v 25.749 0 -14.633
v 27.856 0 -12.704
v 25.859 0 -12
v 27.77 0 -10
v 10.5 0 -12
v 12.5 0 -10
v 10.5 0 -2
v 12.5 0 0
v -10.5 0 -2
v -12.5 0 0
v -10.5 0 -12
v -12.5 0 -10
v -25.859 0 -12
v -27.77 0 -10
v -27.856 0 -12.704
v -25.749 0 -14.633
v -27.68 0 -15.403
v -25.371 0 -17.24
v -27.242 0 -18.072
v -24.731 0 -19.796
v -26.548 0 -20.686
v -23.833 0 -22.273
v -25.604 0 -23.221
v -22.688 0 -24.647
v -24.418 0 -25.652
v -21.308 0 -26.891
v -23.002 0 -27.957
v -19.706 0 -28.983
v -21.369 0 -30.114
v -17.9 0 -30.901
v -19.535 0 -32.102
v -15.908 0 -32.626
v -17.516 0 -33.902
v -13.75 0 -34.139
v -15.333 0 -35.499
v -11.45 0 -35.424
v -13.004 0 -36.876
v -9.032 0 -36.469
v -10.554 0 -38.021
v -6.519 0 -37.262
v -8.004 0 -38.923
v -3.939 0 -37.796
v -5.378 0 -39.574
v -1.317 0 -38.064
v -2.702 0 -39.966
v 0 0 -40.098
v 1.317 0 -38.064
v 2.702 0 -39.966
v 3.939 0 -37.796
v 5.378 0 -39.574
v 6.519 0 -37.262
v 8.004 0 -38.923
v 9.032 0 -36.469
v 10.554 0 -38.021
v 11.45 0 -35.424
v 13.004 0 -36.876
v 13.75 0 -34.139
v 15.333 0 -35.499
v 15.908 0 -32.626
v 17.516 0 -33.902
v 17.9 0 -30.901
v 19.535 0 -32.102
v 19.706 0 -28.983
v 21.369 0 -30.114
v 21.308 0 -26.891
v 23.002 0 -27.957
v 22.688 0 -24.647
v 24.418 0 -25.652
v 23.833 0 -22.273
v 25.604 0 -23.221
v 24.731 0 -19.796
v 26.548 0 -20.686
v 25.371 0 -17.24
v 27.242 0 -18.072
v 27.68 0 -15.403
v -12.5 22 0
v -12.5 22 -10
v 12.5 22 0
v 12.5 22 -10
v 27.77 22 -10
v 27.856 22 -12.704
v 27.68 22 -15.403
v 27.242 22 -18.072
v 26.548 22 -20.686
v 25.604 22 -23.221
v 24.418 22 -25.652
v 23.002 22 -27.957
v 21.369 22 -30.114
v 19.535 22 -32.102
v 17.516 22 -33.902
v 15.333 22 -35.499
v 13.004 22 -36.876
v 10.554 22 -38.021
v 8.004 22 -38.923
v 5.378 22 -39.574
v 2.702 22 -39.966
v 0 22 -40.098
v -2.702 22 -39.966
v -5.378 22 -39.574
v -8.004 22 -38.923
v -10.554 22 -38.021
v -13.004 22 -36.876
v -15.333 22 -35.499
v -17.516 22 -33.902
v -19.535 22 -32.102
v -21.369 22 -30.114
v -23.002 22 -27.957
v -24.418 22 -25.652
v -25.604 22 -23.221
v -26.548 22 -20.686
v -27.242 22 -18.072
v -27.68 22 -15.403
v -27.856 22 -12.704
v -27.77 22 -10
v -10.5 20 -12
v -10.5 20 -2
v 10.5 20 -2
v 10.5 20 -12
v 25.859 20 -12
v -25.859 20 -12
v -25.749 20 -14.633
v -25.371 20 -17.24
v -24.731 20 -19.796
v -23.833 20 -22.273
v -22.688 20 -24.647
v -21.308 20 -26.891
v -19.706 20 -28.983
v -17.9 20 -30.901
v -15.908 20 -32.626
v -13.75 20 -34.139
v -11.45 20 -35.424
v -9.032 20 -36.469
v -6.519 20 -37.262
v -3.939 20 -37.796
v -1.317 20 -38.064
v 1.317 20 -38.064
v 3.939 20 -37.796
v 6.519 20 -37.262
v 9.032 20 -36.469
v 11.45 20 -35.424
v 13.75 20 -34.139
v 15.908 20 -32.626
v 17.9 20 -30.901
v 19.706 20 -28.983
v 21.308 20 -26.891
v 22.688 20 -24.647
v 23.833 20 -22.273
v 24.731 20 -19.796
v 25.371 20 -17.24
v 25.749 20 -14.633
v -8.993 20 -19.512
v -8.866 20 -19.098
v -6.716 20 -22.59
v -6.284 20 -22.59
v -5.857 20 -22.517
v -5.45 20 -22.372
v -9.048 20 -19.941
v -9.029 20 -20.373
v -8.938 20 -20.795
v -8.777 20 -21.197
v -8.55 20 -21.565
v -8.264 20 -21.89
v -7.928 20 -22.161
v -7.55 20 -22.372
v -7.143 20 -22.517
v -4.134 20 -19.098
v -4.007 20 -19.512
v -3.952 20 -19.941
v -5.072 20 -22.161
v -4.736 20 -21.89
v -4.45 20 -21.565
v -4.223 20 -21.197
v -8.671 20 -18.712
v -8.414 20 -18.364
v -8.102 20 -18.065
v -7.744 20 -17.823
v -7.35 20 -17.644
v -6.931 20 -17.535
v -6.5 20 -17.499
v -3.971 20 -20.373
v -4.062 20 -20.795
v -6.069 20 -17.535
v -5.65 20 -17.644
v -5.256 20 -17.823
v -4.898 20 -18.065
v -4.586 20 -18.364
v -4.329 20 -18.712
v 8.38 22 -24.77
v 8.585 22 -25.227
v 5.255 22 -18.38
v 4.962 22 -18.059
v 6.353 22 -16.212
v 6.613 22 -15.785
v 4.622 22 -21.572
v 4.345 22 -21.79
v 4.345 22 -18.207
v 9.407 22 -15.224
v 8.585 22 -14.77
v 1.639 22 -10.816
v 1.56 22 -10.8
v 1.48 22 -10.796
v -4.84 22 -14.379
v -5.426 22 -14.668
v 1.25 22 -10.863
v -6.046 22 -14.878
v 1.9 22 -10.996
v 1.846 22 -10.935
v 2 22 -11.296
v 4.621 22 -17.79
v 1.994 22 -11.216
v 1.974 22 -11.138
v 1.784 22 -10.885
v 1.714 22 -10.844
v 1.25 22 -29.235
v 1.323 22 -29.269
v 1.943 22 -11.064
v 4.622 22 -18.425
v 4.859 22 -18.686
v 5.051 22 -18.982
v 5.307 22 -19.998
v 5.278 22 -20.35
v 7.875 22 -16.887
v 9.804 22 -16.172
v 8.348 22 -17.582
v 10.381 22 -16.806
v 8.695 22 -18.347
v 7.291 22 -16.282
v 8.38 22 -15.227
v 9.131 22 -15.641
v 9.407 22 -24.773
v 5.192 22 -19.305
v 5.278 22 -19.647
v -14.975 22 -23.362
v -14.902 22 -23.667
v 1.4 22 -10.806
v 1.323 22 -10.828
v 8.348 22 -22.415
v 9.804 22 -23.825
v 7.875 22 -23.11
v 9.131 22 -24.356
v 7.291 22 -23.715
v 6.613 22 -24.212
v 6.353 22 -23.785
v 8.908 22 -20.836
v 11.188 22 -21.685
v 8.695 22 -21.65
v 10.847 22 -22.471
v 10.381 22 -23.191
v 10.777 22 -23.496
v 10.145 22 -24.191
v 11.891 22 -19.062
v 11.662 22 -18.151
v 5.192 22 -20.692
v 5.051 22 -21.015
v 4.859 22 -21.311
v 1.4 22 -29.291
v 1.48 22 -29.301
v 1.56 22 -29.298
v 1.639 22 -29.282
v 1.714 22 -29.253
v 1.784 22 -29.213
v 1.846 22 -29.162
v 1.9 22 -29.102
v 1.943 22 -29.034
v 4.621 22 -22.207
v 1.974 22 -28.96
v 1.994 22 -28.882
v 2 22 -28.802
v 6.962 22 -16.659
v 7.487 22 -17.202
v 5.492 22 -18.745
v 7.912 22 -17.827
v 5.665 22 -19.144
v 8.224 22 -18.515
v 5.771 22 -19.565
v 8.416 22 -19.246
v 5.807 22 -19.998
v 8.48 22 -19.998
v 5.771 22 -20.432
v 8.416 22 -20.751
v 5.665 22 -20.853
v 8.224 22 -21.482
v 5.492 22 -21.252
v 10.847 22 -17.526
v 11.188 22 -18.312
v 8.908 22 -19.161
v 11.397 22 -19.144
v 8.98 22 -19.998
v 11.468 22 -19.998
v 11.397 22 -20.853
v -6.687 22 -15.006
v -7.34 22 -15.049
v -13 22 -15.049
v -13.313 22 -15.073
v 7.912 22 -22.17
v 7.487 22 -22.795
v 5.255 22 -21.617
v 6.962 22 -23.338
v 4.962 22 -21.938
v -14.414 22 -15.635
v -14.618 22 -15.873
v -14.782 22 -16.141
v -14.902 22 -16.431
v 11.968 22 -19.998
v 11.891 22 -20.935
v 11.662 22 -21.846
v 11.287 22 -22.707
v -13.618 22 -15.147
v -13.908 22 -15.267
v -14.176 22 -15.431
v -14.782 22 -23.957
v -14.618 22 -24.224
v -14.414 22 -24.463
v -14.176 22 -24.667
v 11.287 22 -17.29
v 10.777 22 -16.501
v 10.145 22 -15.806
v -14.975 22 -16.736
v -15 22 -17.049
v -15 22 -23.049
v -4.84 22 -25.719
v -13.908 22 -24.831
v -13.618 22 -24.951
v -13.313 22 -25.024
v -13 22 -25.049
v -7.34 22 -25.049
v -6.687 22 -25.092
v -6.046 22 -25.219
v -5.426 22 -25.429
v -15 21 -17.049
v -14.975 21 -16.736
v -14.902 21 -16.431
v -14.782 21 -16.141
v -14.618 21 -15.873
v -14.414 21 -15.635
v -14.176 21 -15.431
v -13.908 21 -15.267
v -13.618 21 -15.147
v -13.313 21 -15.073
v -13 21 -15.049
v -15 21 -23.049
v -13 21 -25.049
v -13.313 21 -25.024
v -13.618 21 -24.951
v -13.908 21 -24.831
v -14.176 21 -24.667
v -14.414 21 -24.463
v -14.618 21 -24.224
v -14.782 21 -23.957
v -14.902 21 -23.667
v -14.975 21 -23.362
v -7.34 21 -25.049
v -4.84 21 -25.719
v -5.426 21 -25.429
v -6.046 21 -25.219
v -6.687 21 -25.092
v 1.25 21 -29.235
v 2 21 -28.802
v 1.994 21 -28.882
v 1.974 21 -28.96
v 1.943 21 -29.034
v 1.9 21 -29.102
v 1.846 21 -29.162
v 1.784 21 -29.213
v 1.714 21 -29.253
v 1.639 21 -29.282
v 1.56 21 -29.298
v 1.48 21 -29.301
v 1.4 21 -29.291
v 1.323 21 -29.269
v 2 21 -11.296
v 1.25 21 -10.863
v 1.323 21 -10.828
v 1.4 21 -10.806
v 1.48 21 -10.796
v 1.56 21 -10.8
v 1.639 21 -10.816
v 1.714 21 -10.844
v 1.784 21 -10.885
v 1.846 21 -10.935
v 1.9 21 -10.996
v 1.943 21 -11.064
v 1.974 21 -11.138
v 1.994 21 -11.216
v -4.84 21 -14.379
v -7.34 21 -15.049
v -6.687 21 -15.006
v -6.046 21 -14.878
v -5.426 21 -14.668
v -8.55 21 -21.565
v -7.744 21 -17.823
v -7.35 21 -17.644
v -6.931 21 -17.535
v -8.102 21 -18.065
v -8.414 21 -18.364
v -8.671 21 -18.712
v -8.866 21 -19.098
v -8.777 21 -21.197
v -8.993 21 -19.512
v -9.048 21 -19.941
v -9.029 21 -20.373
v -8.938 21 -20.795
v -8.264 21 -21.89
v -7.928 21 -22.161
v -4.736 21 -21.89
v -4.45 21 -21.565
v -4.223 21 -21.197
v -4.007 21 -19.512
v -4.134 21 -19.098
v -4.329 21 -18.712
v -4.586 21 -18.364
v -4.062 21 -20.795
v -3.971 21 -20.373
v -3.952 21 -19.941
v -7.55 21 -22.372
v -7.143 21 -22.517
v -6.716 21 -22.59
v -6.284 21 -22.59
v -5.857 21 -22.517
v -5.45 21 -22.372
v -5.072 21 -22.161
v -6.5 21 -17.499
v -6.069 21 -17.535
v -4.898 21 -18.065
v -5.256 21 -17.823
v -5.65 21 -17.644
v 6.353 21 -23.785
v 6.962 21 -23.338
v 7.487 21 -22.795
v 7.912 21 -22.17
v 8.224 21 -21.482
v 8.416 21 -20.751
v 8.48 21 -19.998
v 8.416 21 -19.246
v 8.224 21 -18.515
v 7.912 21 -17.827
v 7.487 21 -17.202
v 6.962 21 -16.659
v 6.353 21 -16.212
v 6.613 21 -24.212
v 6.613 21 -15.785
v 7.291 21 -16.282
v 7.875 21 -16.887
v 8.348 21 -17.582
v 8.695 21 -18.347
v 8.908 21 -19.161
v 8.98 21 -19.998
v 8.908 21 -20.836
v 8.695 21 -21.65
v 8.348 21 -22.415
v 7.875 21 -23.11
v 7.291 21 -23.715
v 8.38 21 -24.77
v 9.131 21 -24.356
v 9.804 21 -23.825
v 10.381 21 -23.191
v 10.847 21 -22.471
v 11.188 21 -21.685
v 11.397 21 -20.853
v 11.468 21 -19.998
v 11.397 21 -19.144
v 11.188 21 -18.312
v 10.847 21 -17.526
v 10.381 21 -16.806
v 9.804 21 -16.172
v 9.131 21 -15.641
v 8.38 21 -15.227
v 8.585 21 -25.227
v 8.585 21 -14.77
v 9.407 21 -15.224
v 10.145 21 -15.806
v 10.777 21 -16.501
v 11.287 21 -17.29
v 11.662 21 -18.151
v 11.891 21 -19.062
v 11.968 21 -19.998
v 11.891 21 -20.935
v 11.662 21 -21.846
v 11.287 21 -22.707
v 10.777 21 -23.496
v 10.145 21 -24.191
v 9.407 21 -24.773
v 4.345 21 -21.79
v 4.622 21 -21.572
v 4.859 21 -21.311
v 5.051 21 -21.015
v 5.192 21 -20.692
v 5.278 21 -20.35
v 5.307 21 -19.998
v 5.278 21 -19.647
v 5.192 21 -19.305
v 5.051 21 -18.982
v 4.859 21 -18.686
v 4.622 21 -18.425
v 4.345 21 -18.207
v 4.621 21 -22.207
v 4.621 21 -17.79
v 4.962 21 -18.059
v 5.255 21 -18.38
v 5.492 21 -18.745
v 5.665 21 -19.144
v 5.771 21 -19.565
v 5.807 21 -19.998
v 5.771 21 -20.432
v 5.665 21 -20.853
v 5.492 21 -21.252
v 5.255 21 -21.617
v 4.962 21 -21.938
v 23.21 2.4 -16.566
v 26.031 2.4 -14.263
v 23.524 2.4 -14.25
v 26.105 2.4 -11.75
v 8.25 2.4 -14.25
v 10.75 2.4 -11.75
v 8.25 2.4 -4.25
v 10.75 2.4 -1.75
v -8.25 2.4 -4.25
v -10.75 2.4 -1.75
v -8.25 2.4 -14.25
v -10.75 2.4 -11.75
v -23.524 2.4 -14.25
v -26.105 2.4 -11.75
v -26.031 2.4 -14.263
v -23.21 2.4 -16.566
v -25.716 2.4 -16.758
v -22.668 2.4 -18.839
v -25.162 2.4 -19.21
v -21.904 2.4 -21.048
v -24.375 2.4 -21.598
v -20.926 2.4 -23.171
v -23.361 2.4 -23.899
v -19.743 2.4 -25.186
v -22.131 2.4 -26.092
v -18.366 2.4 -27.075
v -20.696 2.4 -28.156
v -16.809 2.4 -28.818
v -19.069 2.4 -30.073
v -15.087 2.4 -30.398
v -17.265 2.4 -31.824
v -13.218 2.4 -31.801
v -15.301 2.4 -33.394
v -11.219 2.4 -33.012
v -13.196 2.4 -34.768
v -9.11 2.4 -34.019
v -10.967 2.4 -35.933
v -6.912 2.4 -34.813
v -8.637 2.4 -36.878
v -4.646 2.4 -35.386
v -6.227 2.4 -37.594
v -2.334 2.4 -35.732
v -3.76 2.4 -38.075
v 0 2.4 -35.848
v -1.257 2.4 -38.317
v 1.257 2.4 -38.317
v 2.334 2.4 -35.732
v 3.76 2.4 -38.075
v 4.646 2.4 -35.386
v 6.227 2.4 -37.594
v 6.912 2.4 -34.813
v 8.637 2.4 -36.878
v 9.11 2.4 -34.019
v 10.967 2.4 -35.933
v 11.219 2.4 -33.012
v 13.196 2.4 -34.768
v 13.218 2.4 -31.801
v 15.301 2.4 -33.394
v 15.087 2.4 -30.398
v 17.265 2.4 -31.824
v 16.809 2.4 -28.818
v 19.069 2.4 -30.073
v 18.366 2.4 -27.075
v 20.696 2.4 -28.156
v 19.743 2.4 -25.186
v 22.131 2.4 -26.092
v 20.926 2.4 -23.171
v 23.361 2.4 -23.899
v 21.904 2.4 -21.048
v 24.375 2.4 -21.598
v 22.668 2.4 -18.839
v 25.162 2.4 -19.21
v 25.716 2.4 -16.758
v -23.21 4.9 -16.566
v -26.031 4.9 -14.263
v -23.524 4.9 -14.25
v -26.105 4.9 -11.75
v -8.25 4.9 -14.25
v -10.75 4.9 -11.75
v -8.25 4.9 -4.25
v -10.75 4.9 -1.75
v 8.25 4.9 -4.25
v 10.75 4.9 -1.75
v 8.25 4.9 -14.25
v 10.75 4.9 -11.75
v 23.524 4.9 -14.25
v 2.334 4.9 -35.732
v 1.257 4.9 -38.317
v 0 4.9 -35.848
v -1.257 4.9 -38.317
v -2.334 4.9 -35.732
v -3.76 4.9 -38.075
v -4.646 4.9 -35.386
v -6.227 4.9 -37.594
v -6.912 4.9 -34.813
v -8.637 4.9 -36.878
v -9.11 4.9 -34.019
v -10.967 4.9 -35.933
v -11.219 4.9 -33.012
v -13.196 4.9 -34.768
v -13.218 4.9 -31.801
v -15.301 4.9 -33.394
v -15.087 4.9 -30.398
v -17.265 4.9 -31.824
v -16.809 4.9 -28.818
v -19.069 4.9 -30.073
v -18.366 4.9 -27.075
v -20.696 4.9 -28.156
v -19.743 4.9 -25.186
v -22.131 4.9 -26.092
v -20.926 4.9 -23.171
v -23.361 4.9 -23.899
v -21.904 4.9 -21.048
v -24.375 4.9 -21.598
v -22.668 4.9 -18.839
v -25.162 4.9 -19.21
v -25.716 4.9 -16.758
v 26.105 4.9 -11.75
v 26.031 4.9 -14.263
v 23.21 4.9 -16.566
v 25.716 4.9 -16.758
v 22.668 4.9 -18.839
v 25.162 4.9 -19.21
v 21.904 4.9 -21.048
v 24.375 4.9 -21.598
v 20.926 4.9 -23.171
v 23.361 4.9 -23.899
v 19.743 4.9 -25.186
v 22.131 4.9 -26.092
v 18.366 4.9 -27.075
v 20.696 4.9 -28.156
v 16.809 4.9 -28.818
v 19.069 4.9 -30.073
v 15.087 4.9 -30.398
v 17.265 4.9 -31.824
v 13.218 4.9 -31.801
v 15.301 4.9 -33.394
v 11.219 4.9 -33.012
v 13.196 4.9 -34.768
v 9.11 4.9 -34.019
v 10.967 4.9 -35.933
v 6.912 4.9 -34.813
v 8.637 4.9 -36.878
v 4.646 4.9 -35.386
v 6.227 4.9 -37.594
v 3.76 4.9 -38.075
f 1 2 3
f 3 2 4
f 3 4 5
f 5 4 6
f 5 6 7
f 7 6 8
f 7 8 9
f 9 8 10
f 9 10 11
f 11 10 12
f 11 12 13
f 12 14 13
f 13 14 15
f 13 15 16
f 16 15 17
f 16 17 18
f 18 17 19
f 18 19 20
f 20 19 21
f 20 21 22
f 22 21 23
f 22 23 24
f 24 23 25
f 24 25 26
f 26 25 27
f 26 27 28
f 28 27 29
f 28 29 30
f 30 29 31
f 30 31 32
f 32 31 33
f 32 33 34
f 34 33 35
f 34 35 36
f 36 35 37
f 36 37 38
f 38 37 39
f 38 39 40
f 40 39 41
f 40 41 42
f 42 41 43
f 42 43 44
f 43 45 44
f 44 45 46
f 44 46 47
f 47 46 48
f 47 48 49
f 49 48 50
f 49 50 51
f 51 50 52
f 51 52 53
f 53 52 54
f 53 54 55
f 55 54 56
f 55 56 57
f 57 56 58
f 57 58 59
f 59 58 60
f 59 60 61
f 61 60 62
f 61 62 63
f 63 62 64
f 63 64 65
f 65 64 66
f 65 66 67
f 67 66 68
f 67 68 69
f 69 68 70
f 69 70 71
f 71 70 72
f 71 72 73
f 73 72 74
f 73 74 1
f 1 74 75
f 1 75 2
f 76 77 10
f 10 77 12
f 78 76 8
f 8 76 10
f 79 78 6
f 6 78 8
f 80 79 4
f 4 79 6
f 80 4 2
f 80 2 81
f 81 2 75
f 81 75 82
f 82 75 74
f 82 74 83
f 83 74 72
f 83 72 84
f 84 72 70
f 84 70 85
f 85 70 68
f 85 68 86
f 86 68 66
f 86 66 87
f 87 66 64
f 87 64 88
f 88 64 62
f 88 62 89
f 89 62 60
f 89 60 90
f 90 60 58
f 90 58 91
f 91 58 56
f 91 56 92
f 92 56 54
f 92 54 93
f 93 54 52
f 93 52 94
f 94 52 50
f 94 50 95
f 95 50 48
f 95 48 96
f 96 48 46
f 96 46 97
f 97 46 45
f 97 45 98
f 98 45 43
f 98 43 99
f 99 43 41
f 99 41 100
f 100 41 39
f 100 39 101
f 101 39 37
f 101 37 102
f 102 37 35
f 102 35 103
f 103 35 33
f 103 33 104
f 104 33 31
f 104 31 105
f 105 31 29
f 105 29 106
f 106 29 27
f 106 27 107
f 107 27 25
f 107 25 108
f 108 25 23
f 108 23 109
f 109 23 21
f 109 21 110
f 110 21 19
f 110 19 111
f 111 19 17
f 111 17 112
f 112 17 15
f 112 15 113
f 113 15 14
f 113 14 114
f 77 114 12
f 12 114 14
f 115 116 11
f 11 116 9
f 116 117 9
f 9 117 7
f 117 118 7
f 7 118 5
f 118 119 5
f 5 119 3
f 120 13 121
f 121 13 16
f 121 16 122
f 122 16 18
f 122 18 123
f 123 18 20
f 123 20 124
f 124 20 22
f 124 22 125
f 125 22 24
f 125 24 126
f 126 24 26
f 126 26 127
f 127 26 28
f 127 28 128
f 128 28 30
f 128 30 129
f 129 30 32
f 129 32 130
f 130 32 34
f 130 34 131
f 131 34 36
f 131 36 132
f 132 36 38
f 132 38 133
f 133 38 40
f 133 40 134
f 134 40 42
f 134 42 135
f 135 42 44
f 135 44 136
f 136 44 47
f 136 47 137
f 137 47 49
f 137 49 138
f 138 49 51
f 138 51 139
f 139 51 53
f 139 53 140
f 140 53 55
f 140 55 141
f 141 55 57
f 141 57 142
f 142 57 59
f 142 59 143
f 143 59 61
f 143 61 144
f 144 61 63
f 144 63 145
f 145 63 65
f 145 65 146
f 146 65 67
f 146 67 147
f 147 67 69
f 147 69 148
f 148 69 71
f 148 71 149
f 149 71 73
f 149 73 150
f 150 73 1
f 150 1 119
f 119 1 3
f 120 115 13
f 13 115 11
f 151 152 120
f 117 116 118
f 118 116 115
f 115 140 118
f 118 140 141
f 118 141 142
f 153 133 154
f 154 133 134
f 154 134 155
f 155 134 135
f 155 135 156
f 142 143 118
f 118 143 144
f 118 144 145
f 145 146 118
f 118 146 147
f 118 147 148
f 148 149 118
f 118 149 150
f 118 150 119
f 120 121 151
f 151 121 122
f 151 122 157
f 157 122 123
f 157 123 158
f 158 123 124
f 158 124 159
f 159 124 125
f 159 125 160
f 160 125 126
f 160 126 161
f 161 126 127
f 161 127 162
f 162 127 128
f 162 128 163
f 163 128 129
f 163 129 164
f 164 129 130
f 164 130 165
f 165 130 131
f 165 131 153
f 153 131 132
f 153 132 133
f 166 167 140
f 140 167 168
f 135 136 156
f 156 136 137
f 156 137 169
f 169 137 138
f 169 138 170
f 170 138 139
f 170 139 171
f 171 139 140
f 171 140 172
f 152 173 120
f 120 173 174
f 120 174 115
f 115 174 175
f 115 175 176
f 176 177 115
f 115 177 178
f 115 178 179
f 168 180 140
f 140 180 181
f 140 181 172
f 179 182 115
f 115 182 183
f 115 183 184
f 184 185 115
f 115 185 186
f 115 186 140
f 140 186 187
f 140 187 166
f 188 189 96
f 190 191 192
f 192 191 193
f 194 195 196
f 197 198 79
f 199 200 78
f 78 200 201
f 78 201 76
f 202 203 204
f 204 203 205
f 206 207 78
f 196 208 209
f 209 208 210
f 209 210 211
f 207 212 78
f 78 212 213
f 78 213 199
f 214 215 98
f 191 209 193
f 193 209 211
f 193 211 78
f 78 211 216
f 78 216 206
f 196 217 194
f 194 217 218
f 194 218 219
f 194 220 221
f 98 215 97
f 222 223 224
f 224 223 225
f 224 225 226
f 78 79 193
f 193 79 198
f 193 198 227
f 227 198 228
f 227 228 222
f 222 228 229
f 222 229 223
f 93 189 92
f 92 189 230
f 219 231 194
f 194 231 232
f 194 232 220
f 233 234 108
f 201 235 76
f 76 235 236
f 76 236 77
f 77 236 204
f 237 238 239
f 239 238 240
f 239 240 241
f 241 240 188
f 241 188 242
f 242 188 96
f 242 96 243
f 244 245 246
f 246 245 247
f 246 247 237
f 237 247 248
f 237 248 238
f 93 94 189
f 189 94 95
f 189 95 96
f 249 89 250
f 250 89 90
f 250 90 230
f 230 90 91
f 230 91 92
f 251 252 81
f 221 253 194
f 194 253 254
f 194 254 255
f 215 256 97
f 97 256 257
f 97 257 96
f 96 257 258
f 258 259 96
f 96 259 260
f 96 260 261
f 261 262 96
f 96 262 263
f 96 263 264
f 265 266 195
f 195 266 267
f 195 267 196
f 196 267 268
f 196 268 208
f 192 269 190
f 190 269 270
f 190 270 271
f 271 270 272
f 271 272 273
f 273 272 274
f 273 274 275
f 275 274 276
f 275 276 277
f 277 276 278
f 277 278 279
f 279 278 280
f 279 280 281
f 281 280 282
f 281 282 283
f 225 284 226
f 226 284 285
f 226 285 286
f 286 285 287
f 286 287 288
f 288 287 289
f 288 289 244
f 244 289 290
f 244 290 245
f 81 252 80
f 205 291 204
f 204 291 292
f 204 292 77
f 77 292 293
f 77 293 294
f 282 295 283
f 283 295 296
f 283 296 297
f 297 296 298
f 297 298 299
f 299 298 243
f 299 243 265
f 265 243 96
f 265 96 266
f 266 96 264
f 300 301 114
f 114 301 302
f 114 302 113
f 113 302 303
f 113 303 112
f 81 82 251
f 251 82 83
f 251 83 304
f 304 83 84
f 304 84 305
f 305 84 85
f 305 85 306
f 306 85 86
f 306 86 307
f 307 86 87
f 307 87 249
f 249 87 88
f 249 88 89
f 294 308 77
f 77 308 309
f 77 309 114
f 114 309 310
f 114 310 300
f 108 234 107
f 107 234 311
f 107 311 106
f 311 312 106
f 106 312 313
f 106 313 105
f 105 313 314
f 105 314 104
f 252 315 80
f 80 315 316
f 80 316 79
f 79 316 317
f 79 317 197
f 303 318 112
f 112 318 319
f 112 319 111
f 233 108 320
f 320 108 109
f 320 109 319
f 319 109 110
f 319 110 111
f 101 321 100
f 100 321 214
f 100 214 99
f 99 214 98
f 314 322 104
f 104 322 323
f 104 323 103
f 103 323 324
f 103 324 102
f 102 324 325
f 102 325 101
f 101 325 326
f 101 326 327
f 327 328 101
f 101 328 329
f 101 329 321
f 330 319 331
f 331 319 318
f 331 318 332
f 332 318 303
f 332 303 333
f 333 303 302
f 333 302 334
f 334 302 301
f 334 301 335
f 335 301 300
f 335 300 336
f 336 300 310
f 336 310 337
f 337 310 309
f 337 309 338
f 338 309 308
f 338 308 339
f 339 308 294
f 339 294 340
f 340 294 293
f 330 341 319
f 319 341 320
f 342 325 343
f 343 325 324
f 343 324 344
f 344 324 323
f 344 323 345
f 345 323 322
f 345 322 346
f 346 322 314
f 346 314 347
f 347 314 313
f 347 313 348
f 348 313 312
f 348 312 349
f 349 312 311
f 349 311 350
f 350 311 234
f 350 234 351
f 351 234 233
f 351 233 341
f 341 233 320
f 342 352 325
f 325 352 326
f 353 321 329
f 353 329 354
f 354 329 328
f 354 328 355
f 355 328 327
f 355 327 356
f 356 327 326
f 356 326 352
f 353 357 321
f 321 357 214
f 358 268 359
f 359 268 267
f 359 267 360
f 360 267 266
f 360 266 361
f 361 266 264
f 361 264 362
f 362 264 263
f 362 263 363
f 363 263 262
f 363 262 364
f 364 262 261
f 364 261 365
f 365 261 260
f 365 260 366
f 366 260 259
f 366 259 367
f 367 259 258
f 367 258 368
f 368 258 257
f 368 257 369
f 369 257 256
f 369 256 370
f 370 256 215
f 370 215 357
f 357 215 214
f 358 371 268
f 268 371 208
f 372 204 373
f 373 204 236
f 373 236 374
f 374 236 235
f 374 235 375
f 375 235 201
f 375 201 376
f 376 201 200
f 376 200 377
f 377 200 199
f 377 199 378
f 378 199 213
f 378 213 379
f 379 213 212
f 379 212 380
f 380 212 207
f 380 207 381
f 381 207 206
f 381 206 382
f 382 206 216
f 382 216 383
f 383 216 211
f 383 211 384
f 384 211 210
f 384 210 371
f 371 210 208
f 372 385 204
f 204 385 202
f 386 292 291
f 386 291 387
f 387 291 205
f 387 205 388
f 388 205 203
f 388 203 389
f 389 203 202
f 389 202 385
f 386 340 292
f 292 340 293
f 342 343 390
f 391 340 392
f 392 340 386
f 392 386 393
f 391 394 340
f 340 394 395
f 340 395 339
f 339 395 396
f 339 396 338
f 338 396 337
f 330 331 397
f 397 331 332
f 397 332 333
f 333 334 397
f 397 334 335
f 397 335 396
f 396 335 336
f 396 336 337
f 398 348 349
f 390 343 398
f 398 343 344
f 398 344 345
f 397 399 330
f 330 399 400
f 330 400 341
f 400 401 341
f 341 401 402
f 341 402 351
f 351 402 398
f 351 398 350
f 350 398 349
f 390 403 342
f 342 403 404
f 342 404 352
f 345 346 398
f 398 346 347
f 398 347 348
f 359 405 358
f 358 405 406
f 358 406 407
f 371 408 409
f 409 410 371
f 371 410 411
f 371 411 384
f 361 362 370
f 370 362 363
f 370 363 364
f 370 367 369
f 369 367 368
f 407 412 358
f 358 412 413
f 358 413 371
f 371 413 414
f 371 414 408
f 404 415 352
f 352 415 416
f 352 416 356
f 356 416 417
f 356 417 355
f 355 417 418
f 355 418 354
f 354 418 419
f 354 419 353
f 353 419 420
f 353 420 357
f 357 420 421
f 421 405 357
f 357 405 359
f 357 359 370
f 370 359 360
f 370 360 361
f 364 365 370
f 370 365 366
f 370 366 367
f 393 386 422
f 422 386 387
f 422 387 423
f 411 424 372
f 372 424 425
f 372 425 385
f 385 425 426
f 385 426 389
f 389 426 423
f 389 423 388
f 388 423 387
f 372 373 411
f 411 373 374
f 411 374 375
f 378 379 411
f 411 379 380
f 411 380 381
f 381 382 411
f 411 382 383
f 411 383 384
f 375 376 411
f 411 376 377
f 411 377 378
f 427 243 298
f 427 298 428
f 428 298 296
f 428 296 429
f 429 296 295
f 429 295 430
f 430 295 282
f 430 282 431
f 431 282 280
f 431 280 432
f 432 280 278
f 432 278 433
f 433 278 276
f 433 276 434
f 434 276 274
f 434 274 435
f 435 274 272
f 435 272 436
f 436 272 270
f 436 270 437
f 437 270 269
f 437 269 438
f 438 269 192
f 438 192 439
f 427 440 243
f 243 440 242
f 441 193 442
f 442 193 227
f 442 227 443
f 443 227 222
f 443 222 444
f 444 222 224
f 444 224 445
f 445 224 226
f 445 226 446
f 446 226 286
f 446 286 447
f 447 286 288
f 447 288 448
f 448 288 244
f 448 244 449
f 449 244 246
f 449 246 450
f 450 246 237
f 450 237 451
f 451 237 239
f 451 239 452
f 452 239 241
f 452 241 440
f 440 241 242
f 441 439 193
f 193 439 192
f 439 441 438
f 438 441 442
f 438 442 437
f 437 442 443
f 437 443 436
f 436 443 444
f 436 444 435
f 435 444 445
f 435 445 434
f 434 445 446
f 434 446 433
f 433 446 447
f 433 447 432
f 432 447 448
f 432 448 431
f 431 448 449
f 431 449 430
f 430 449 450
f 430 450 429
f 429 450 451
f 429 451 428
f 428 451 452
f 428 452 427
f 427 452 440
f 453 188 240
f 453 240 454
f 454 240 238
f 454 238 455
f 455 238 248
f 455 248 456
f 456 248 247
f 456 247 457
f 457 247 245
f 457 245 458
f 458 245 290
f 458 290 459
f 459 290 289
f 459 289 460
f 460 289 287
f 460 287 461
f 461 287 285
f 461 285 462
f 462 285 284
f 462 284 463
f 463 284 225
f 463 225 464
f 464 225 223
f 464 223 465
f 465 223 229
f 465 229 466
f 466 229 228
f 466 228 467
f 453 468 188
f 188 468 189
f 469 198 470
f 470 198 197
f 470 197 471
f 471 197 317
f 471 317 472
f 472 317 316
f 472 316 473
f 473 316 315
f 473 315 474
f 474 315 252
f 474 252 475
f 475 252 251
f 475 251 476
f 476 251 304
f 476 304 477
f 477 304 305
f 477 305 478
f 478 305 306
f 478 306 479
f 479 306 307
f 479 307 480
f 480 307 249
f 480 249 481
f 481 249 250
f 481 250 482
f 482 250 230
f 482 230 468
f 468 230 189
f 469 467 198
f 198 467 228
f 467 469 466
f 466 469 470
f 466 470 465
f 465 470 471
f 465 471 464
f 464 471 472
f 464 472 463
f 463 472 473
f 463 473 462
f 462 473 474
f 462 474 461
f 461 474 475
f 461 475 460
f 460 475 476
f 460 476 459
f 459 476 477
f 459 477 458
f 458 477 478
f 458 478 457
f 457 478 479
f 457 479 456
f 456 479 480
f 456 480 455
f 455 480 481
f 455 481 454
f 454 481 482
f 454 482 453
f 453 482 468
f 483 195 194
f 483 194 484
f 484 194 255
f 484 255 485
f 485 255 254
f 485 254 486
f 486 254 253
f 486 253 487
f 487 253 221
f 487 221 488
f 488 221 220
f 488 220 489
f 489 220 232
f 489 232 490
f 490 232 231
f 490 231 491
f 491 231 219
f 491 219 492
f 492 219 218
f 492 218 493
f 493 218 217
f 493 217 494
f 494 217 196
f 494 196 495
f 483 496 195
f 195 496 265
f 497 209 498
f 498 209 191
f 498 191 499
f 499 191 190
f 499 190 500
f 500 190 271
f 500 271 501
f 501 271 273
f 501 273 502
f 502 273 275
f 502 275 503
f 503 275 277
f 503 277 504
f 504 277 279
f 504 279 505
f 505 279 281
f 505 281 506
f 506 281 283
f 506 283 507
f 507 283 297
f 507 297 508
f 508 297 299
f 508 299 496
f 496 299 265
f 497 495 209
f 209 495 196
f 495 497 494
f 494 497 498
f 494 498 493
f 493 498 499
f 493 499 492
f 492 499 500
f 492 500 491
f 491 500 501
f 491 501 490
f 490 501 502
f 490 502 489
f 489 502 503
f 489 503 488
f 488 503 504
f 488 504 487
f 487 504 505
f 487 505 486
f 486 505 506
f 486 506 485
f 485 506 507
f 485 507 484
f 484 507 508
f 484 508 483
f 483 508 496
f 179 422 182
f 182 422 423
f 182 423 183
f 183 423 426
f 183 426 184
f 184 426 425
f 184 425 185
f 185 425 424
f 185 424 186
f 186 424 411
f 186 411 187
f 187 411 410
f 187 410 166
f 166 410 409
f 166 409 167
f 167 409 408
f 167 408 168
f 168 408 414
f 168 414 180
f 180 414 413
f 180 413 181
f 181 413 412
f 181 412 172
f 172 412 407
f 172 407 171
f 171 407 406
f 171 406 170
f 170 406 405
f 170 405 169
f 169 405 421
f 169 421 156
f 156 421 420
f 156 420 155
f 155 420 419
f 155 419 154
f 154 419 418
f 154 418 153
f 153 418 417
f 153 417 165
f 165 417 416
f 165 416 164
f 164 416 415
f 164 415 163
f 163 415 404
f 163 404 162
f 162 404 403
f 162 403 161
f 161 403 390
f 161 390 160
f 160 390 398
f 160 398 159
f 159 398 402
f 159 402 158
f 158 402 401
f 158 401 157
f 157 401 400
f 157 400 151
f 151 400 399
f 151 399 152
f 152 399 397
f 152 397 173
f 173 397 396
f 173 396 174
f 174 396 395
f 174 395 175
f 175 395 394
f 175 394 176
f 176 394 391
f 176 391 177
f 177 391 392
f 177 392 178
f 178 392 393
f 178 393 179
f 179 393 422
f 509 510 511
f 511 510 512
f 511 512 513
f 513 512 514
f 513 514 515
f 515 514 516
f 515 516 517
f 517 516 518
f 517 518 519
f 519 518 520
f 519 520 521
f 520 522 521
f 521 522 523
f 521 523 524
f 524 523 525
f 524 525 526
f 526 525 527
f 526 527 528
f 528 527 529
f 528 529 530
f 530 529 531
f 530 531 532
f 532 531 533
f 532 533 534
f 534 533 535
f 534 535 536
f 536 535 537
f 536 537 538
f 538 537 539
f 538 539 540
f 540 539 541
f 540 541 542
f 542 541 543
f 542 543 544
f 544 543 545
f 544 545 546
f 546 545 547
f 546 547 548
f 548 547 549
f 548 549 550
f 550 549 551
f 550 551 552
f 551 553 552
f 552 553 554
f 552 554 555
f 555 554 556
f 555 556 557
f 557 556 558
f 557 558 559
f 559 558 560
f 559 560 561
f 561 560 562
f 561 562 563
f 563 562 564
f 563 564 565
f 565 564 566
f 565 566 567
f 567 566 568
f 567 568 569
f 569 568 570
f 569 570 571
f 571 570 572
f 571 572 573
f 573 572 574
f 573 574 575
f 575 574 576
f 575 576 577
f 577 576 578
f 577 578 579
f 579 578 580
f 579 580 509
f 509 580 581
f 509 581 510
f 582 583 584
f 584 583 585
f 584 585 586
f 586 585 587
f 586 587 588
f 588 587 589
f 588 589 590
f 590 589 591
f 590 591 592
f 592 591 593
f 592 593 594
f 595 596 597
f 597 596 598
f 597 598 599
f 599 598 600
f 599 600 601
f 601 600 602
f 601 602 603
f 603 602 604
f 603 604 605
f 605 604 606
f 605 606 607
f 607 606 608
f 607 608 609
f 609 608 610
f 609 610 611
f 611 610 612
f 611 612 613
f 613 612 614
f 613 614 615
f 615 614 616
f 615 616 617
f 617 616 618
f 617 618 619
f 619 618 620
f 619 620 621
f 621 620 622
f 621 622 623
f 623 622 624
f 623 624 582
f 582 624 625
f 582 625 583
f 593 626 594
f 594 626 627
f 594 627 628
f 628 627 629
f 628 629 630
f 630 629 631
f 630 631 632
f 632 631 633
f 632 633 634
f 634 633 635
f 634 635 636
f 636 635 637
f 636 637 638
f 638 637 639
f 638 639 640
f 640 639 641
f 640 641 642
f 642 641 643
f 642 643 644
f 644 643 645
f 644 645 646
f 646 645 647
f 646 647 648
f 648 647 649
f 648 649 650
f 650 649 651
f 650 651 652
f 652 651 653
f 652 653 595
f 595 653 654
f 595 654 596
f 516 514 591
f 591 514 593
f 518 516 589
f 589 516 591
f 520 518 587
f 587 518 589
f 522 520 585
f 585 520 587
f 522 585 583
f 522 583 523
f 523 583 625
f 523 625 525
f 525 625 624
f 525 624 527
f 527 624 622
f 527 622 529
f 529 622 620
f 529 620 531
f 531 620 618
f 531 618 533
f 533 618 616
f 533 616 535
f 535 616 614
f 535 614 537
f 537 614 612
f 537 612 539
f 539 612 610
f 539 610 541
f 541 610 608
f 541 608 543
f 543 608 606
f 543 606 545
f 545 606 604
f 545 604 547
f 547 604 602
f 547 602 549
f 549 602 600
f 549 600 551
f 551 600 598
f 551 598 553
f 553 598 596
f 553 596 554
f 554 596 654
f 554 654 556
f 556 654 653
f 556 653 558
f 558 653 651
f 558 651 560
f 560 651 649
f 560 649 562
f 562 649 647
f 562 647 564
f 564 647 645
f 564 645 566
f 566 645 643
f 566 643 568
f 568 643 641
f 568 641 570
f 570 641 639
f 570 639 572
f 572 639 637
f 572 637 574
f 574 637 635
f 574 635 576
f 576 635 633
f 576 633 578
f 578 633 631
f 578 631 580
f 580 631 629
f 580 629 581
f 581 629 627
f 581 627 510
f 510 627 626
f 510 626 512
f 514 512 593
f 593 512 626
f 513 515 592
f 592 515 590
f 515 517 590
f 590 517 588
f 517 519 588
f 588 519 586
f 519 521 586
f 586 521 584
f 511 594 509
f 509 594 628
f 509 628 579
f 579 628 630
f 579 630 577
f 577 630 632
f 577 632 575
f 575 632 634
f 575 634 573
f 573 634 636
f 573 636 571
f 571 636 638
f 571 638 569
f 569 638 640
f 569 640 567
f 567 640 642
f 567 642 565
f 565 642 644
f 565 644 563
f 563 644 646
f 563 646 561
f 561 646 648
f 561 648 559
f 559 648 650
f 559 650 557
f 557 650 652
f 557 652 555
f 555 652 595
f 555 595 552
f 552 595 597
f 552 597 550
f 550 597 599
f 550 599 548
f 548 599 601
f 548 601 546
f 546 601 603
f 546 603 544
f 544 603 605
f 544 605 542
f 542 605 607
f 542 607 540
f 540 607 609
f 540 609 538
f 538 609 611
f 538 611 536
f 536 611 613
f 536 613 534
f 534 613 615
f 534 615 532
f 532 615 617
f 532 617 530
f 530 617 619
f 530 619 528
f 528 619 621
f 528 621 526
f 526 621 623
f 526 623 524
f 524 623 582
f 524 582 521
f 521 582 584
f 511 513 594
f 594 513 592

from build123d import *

# Parameters (mm, degrees)
EXTRUIR_L_MINA1_DEPTH        = 20
SALIENTE_EXTRUIR1_DEPTH      = 2
CORTAR_EXTRUIR1_DEPTH        = 1
CORTAR_EXTRUIR_L_MINA2_DEPTH = 1
CROQUIS7_R                   = 2.55
CORTAR_EXTRUIR2_DEPTH        = 11
EXTRUIR_L_MINA2_DEPTH        = 2.5


with BuildPart() as part:
    # Croquis1 → Extruir-Lámina1 (new body)
    with BuildSketch(Plane(origin=(0, 0, 0), x_dir=(1, 0, 0), z_dir=(0, 1, 0))):
        with BuildLine():
            Line((-27.77, 10), (-12.5, 10))
            Line((-12.5, 10), (-12.5, 0))
            Line((-12.5, 0), (12.5, 0))
            Line((12.5, 0), (12.5, 10))
            Line((12.5, 10), (27.77, 10))
            ThreePointArc((27.77, 10), (0, 40.097565641), (-27.77, 10))
        make_face()
        with BuildLine():
            Line((-25.858908766, 12), (-10.5, 12))
            Line((-10.5, 12), (-10.5, 2))
            Line((-10.5, 2), (10.5, 2))
            Line((10.5, 2), (10.5, 12))
            Line((10.5, 12), (25.858908766, 12))
            ThreePointArc((25.858908766, 12), (0, 38.097565641), (-25.858908766, 12))
        make_face(mode=Mode.SUBTRACT)
    extrude(amount=EXTRUIR_L_MINA1_DEPTH)

    # Croquis2 → Saliente-Extruir1 (add)
    with BuildSketch(Plane(origin=(0, 20, 0), x_dir=(1, 0, 0), z_dir=(0, 1, 0))):
        with BuildLine():
            Line((12.5, 10), (27.77, 10))
            ThreePointArc((27.77, 10), (0, 40.097565641), (-27.77, 10))
            Line((-27.77, 10), (-12.5, 10))
            Line((-12.5, 10), (-12.5, 0))
            Line((-12.5, 0), (12.5, 0))
            Line((12.5, 0), (12.5, 10))
        make_face()
    extrude(amount=SALIENTE_EXTRUIR1_DEPTH)

    # Croquis3 → Cortar-Extruir1 (cut)
    with BuildSketch(Plane(origin=(0, 22, 0), x_dir=(1, 0, 0), z_dir=(0, 1, 0))):
        with BuildLine():
            Line((-15, 23.048782821), (-15, 17.048782821))
            ThreePointArc((-15, 17.048782821), (-14.414213562, 15.634569258), (-13, 15.048782821))
            Line((-13, 15.048782821), (-7.339745962, 15.048782821))
            ThreePointArc((-7.339745962, 15.048782821), (-6.045650737, 14.878411952), (-4.839745962, 14.37890984))
            Line((-4.839745962, 14.37890984), (1.25, 10.862993369))
            ThreePointArc((1.25, 10.862993369), (1.75, 10.862993369), (2, 11.296006071))
            Line((2, 11.296006071), (2, 28.80155957))
            ThreePointArc((2, 28.80155957), (1.75, 29.234572272), (1.25, 29.234572272))
            Line((1.25, 29.234572272), (-4.839745962, 25.718655802))
            ThreePointArc((-4.839745962, 25.718655802), (-6.045650737, 25.219153689), (-7.339745962, 25.048782821))
            Line((-7.339745962, 25.048782821), (-13, 25.048782821))
            ThreePointArc((-13, 25.048782821), (-14.414213562, 24.462996383), (-15, 23.048782821))
        make_face()
    extrude(amount=-CORTAR_EXTRUIR1_DEPTH, mode=Mode.SUBTRACT)

    # Croquis4 → Cortar-Extruir-Lámina2 (cut)
    with BuildSketch(Plane(origin=(0, 22, 0), x_dir=(1, 0, 0), z_dir=(0, 1, 0))):
        with BuildLine():
            ThreePointArc((4.344585076, 21.79004299), (5.307052977, 19.99849463), (4.344585076, 18.206946269))
            Line((4.344585076, 18.206946269), (4.620613436, 17.79004299))
            ThreePointArc((4.620613436, 17.79004299), (5.807052977, 19.99849463), (4.620613436, 22.206946269))
            Line((4.620613436, 22.206946269), (4.344585076, 21.79004299))
        make_face()
        with BuildLine():
            ThreePointArc((6.352562942, 23.784975176), (8.479957679, 19.99849463), (6.352562942, 16.212014083))
            Line((6.352562942, 16.212014083), (6.612635571, 15.784975176))
            ThreePointArc((6.612635571, 15.784975176), (8.979957679, 19.99849463), (6.612635571, 24.212014083))
            Line((6.612635571, 24.212014083), (6.352562942, 23.784975176))
        make_face()
        with BuildLine():
            ThreePointArc((8.380144543, 24.770452897), (11.467649375, 19.99849463), (8.380144543, 15.226536362))
            Line((8.380144543, 15.226536362), (8.58505397, 14.770452897))
            ThreePointArc((8.58505397, 14.770452897), (11.967649375, 19.99849463), (8.58505397, 25.226536362))
            Line((8.58505397, 25.226536362), (8.380144543, 24.770452897))
        make_face()
    extrude(amount=-CORTAR_EXTRUIR_L_MINA2_DEPTH, mode=Mode.SUBTRACT)

    # Croquis7 → Cortar-Extruir2 (cut)
    with BuildSketch(Plane(origin=(0, 22, 0), x_dir=(1, 0, 0), z_dir=(0, 1, 0))):
        with Locations(Location((-6.5, 20.048782821, 0), (0, 0, 270))):
            Circle(CROQUIS7_R)
    extrude(amount=-CORTAR_EXTRUIR2_DEPTH, mode=Mode.SUBTRACT)


with BuildPart() as body_2:
    # Croquis9 → Extruir-Lámina2 (new body)
    with BuildSketch(Plane(origin=(0, 4.9, 0), x_dir=(-1, 0, 0), z_dir=(0, -1, 0))):
        with BuildLine():
            Line((-26.105447319, 11.75), (-10.75, 11.75))
            Line((-10.75, 11.75), (-10.75, 1.75))
            Line((-10.75, 1.75), (10.75, 1.75))
            Line((10.75, 1.75), (10.75, 11.75))
            Line((10.75, 11.75), (26.105447319, 11.75))
            ThreePointArc((26.105447319, 11.75), (0, 38.347565641), (-26.105447319, 11.75))
        make_face()
        with BuildLine():
            Line((-23.524077197, 14.25), (-8.25, 14.25))
            Line((-8.25, 14.25), (-8.25, 4.25))
            Line((-8.25, 4.25), (8.25, 4.25))
            Line((8.25, 4.25), (8.25, 14.25))
            Line((8.25, 14.25), (23.524077197, 14.25))
            ThreePointArc((23.524077197, 14.25), (0, 35.847565641), (-23.524077197, 14.25))
        make_face(mode=Mode.SUBTRACT)
    extrude(amount=EXTRUIR_L_MINA2_DEPTH)


solid = Compound([part.part, body_2.part])
